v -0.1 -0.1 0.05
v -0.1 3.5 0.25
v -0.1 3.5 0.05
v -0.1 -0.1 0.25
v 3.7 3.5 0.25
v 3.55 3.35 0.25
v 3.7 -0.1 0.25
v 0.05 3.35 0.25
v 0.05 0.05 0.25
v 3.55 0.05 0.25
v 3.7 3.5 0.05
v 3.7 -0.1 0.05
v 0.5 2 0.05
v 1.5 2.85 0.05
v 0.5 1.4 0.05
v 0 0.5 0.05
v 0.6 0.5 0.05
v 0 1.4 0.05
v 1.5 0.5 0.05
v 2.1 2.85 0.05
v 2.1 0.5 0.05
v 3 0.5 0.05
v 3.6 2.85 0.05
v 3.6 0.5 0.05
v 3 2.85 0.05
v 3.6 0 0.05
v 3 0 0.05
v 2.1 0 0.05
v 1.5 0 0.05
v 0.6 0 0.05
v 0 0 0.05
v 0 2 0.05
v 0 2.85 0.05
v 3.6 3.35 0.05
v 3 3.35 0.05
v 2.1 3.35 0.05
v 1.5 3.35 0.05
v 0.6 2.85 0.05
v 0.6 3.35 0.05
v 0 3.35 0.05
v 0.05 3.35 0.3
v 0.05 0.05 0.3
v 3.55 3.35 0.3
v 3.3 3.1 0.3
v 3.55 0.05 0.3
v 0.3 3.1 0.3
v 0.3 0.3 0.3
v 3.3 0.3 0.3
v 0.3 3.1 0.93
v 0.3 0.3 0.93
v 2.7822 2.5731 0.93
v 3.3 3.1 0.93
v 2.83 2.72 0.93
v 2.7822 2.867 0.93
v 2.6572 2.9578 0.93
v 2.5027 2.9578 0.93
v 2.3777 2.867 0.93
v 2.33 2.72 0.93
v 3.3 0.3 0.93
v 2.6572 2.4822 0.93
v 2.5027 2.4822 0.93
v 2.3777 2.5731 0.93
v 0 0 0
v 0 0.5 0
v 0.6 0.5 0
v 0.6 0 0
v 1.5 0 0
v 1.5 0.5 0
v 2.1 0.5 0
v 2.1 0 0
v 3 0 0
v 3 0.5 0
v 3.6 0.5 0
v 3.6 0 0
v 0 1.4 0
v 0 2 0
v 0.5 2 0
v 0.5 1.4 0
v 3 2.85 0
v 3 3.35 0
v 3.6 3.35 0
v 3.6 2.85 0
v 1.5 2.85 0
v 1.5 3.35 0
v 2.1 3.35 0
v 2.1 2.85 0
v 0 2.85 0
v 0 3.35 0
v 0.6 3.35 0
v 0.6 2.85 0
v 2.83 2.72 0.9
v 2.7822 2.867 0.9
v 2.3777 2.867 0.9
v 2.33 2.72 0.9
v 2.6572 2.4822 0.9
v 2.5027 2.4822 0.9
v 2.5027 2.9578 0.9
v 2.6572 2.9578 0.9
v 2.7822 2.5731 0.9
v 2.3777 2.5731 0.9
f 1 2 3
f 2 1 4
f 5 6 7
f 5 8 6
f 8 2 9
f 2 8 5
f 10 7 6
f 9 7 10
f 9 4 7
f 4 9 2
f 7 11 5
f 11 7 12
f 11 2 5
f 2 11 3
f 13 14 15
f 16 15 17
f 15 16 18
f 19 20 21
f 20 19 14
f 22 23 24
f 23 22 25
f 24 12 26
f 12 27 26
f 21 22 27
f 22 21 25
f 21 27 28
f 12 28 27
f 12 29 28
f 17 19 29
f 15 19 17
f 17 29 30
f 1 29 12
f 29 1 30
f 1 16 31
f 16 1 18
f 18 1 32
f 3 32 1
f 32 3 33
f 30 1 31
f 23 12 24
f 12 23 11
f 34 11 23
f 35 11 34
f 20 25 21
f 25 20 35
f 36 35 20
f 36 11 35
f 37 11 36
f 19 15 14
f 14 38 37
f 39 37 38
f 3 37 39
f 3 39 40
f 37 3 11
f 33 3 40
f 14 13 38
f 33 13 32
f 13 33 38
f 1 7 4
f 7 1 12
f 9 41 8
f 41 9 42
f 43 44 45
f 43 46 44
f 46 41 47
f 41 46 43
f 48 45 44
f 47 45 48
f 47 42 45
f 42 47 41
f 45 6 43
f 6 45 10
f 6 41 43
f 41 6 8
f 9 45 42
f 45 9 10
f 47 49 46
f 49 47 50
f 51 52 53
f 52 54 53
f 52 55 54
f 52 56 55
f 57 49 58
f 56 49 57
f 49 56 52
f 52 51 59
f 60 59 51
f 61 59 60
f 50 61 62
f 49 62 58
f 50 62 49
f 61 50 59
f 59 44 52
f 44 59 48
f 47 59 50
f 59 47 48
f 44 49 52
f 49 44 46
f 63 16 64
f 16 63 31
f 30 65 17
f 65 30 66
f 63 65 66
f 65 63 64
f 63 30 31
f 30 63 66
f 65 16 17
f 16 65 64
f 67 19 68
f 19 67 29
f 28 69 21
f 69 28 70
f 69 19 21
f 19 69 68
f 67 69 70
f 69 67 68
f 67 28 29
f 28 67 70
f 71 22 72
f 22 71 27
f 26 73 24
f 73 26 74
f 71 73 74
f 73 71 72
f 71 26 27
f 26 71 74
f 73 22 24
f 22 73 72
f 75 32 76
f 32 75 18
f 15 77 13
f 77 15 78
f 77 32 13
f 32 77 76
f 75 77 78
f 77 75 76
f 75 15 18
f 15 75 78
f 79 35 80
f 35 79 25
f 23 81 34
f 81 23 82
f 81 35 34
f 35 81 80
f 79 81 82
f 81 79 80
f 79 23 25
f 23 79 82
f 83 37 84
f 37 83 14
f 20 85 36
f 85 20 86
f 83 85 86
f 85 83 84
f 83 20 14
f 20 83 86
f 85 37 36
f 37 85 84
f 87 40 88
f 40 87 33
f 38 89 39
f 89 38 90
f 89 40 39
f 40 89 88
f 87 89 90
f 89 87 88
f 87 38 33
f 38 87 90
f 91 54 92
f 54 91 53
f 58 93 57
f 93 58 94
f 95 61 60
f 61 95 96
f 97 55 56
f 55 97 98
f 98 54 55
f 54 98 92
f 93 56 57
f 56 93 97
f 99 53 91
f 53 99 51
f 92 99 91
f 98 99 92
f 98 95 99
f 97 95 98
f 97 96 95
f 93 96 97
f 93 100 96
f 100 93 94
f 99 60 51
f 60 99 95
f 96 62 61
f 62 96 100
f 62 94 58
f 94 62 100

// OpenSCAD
difference (){
    union(){
        // case
        translate([-0.1,-0.1,0.05])
            cube(size=[3.8,3.6,0.2], center = false);
        translate([0.05,0.05,0.1])
            cube(size=[3.5,3.3,0.2], center = false);
        translate([0.3,0.3,0.3])
            cube(size=[3,2.8,0.63], center = false);

        // pins
        cube(size = [0.6,0.5,0.1], center=false);
        translate([1.5,0,0])
            cube(size = [0.6,0.5,0.1], center=false);
        translate([3,0,0])
            cube(size = [0.6,0.5,0.1], center=false);
        translate([0,-0.05 + 1.45,0])
            cube(size = [0.5,0.6,0.1], center=false);
        translate([3,-0.05 + 2.9,0])
            cube(size = [0.6,0.5,0.1], center=false);
        translate([1.5,-0.05 + 2.9,0])
            cube(size = [0.6,0.5,0.1], center=false);
        translate([0,-0.05 + 2.9,0])
            cube(size = [0.6,0.5,0.1], center=false);
    }

    translate([3.8-1.22,3.6-0.88,1])
        cylinder (h=0.2,d=0.5,center = true, $fn = 10);
}
